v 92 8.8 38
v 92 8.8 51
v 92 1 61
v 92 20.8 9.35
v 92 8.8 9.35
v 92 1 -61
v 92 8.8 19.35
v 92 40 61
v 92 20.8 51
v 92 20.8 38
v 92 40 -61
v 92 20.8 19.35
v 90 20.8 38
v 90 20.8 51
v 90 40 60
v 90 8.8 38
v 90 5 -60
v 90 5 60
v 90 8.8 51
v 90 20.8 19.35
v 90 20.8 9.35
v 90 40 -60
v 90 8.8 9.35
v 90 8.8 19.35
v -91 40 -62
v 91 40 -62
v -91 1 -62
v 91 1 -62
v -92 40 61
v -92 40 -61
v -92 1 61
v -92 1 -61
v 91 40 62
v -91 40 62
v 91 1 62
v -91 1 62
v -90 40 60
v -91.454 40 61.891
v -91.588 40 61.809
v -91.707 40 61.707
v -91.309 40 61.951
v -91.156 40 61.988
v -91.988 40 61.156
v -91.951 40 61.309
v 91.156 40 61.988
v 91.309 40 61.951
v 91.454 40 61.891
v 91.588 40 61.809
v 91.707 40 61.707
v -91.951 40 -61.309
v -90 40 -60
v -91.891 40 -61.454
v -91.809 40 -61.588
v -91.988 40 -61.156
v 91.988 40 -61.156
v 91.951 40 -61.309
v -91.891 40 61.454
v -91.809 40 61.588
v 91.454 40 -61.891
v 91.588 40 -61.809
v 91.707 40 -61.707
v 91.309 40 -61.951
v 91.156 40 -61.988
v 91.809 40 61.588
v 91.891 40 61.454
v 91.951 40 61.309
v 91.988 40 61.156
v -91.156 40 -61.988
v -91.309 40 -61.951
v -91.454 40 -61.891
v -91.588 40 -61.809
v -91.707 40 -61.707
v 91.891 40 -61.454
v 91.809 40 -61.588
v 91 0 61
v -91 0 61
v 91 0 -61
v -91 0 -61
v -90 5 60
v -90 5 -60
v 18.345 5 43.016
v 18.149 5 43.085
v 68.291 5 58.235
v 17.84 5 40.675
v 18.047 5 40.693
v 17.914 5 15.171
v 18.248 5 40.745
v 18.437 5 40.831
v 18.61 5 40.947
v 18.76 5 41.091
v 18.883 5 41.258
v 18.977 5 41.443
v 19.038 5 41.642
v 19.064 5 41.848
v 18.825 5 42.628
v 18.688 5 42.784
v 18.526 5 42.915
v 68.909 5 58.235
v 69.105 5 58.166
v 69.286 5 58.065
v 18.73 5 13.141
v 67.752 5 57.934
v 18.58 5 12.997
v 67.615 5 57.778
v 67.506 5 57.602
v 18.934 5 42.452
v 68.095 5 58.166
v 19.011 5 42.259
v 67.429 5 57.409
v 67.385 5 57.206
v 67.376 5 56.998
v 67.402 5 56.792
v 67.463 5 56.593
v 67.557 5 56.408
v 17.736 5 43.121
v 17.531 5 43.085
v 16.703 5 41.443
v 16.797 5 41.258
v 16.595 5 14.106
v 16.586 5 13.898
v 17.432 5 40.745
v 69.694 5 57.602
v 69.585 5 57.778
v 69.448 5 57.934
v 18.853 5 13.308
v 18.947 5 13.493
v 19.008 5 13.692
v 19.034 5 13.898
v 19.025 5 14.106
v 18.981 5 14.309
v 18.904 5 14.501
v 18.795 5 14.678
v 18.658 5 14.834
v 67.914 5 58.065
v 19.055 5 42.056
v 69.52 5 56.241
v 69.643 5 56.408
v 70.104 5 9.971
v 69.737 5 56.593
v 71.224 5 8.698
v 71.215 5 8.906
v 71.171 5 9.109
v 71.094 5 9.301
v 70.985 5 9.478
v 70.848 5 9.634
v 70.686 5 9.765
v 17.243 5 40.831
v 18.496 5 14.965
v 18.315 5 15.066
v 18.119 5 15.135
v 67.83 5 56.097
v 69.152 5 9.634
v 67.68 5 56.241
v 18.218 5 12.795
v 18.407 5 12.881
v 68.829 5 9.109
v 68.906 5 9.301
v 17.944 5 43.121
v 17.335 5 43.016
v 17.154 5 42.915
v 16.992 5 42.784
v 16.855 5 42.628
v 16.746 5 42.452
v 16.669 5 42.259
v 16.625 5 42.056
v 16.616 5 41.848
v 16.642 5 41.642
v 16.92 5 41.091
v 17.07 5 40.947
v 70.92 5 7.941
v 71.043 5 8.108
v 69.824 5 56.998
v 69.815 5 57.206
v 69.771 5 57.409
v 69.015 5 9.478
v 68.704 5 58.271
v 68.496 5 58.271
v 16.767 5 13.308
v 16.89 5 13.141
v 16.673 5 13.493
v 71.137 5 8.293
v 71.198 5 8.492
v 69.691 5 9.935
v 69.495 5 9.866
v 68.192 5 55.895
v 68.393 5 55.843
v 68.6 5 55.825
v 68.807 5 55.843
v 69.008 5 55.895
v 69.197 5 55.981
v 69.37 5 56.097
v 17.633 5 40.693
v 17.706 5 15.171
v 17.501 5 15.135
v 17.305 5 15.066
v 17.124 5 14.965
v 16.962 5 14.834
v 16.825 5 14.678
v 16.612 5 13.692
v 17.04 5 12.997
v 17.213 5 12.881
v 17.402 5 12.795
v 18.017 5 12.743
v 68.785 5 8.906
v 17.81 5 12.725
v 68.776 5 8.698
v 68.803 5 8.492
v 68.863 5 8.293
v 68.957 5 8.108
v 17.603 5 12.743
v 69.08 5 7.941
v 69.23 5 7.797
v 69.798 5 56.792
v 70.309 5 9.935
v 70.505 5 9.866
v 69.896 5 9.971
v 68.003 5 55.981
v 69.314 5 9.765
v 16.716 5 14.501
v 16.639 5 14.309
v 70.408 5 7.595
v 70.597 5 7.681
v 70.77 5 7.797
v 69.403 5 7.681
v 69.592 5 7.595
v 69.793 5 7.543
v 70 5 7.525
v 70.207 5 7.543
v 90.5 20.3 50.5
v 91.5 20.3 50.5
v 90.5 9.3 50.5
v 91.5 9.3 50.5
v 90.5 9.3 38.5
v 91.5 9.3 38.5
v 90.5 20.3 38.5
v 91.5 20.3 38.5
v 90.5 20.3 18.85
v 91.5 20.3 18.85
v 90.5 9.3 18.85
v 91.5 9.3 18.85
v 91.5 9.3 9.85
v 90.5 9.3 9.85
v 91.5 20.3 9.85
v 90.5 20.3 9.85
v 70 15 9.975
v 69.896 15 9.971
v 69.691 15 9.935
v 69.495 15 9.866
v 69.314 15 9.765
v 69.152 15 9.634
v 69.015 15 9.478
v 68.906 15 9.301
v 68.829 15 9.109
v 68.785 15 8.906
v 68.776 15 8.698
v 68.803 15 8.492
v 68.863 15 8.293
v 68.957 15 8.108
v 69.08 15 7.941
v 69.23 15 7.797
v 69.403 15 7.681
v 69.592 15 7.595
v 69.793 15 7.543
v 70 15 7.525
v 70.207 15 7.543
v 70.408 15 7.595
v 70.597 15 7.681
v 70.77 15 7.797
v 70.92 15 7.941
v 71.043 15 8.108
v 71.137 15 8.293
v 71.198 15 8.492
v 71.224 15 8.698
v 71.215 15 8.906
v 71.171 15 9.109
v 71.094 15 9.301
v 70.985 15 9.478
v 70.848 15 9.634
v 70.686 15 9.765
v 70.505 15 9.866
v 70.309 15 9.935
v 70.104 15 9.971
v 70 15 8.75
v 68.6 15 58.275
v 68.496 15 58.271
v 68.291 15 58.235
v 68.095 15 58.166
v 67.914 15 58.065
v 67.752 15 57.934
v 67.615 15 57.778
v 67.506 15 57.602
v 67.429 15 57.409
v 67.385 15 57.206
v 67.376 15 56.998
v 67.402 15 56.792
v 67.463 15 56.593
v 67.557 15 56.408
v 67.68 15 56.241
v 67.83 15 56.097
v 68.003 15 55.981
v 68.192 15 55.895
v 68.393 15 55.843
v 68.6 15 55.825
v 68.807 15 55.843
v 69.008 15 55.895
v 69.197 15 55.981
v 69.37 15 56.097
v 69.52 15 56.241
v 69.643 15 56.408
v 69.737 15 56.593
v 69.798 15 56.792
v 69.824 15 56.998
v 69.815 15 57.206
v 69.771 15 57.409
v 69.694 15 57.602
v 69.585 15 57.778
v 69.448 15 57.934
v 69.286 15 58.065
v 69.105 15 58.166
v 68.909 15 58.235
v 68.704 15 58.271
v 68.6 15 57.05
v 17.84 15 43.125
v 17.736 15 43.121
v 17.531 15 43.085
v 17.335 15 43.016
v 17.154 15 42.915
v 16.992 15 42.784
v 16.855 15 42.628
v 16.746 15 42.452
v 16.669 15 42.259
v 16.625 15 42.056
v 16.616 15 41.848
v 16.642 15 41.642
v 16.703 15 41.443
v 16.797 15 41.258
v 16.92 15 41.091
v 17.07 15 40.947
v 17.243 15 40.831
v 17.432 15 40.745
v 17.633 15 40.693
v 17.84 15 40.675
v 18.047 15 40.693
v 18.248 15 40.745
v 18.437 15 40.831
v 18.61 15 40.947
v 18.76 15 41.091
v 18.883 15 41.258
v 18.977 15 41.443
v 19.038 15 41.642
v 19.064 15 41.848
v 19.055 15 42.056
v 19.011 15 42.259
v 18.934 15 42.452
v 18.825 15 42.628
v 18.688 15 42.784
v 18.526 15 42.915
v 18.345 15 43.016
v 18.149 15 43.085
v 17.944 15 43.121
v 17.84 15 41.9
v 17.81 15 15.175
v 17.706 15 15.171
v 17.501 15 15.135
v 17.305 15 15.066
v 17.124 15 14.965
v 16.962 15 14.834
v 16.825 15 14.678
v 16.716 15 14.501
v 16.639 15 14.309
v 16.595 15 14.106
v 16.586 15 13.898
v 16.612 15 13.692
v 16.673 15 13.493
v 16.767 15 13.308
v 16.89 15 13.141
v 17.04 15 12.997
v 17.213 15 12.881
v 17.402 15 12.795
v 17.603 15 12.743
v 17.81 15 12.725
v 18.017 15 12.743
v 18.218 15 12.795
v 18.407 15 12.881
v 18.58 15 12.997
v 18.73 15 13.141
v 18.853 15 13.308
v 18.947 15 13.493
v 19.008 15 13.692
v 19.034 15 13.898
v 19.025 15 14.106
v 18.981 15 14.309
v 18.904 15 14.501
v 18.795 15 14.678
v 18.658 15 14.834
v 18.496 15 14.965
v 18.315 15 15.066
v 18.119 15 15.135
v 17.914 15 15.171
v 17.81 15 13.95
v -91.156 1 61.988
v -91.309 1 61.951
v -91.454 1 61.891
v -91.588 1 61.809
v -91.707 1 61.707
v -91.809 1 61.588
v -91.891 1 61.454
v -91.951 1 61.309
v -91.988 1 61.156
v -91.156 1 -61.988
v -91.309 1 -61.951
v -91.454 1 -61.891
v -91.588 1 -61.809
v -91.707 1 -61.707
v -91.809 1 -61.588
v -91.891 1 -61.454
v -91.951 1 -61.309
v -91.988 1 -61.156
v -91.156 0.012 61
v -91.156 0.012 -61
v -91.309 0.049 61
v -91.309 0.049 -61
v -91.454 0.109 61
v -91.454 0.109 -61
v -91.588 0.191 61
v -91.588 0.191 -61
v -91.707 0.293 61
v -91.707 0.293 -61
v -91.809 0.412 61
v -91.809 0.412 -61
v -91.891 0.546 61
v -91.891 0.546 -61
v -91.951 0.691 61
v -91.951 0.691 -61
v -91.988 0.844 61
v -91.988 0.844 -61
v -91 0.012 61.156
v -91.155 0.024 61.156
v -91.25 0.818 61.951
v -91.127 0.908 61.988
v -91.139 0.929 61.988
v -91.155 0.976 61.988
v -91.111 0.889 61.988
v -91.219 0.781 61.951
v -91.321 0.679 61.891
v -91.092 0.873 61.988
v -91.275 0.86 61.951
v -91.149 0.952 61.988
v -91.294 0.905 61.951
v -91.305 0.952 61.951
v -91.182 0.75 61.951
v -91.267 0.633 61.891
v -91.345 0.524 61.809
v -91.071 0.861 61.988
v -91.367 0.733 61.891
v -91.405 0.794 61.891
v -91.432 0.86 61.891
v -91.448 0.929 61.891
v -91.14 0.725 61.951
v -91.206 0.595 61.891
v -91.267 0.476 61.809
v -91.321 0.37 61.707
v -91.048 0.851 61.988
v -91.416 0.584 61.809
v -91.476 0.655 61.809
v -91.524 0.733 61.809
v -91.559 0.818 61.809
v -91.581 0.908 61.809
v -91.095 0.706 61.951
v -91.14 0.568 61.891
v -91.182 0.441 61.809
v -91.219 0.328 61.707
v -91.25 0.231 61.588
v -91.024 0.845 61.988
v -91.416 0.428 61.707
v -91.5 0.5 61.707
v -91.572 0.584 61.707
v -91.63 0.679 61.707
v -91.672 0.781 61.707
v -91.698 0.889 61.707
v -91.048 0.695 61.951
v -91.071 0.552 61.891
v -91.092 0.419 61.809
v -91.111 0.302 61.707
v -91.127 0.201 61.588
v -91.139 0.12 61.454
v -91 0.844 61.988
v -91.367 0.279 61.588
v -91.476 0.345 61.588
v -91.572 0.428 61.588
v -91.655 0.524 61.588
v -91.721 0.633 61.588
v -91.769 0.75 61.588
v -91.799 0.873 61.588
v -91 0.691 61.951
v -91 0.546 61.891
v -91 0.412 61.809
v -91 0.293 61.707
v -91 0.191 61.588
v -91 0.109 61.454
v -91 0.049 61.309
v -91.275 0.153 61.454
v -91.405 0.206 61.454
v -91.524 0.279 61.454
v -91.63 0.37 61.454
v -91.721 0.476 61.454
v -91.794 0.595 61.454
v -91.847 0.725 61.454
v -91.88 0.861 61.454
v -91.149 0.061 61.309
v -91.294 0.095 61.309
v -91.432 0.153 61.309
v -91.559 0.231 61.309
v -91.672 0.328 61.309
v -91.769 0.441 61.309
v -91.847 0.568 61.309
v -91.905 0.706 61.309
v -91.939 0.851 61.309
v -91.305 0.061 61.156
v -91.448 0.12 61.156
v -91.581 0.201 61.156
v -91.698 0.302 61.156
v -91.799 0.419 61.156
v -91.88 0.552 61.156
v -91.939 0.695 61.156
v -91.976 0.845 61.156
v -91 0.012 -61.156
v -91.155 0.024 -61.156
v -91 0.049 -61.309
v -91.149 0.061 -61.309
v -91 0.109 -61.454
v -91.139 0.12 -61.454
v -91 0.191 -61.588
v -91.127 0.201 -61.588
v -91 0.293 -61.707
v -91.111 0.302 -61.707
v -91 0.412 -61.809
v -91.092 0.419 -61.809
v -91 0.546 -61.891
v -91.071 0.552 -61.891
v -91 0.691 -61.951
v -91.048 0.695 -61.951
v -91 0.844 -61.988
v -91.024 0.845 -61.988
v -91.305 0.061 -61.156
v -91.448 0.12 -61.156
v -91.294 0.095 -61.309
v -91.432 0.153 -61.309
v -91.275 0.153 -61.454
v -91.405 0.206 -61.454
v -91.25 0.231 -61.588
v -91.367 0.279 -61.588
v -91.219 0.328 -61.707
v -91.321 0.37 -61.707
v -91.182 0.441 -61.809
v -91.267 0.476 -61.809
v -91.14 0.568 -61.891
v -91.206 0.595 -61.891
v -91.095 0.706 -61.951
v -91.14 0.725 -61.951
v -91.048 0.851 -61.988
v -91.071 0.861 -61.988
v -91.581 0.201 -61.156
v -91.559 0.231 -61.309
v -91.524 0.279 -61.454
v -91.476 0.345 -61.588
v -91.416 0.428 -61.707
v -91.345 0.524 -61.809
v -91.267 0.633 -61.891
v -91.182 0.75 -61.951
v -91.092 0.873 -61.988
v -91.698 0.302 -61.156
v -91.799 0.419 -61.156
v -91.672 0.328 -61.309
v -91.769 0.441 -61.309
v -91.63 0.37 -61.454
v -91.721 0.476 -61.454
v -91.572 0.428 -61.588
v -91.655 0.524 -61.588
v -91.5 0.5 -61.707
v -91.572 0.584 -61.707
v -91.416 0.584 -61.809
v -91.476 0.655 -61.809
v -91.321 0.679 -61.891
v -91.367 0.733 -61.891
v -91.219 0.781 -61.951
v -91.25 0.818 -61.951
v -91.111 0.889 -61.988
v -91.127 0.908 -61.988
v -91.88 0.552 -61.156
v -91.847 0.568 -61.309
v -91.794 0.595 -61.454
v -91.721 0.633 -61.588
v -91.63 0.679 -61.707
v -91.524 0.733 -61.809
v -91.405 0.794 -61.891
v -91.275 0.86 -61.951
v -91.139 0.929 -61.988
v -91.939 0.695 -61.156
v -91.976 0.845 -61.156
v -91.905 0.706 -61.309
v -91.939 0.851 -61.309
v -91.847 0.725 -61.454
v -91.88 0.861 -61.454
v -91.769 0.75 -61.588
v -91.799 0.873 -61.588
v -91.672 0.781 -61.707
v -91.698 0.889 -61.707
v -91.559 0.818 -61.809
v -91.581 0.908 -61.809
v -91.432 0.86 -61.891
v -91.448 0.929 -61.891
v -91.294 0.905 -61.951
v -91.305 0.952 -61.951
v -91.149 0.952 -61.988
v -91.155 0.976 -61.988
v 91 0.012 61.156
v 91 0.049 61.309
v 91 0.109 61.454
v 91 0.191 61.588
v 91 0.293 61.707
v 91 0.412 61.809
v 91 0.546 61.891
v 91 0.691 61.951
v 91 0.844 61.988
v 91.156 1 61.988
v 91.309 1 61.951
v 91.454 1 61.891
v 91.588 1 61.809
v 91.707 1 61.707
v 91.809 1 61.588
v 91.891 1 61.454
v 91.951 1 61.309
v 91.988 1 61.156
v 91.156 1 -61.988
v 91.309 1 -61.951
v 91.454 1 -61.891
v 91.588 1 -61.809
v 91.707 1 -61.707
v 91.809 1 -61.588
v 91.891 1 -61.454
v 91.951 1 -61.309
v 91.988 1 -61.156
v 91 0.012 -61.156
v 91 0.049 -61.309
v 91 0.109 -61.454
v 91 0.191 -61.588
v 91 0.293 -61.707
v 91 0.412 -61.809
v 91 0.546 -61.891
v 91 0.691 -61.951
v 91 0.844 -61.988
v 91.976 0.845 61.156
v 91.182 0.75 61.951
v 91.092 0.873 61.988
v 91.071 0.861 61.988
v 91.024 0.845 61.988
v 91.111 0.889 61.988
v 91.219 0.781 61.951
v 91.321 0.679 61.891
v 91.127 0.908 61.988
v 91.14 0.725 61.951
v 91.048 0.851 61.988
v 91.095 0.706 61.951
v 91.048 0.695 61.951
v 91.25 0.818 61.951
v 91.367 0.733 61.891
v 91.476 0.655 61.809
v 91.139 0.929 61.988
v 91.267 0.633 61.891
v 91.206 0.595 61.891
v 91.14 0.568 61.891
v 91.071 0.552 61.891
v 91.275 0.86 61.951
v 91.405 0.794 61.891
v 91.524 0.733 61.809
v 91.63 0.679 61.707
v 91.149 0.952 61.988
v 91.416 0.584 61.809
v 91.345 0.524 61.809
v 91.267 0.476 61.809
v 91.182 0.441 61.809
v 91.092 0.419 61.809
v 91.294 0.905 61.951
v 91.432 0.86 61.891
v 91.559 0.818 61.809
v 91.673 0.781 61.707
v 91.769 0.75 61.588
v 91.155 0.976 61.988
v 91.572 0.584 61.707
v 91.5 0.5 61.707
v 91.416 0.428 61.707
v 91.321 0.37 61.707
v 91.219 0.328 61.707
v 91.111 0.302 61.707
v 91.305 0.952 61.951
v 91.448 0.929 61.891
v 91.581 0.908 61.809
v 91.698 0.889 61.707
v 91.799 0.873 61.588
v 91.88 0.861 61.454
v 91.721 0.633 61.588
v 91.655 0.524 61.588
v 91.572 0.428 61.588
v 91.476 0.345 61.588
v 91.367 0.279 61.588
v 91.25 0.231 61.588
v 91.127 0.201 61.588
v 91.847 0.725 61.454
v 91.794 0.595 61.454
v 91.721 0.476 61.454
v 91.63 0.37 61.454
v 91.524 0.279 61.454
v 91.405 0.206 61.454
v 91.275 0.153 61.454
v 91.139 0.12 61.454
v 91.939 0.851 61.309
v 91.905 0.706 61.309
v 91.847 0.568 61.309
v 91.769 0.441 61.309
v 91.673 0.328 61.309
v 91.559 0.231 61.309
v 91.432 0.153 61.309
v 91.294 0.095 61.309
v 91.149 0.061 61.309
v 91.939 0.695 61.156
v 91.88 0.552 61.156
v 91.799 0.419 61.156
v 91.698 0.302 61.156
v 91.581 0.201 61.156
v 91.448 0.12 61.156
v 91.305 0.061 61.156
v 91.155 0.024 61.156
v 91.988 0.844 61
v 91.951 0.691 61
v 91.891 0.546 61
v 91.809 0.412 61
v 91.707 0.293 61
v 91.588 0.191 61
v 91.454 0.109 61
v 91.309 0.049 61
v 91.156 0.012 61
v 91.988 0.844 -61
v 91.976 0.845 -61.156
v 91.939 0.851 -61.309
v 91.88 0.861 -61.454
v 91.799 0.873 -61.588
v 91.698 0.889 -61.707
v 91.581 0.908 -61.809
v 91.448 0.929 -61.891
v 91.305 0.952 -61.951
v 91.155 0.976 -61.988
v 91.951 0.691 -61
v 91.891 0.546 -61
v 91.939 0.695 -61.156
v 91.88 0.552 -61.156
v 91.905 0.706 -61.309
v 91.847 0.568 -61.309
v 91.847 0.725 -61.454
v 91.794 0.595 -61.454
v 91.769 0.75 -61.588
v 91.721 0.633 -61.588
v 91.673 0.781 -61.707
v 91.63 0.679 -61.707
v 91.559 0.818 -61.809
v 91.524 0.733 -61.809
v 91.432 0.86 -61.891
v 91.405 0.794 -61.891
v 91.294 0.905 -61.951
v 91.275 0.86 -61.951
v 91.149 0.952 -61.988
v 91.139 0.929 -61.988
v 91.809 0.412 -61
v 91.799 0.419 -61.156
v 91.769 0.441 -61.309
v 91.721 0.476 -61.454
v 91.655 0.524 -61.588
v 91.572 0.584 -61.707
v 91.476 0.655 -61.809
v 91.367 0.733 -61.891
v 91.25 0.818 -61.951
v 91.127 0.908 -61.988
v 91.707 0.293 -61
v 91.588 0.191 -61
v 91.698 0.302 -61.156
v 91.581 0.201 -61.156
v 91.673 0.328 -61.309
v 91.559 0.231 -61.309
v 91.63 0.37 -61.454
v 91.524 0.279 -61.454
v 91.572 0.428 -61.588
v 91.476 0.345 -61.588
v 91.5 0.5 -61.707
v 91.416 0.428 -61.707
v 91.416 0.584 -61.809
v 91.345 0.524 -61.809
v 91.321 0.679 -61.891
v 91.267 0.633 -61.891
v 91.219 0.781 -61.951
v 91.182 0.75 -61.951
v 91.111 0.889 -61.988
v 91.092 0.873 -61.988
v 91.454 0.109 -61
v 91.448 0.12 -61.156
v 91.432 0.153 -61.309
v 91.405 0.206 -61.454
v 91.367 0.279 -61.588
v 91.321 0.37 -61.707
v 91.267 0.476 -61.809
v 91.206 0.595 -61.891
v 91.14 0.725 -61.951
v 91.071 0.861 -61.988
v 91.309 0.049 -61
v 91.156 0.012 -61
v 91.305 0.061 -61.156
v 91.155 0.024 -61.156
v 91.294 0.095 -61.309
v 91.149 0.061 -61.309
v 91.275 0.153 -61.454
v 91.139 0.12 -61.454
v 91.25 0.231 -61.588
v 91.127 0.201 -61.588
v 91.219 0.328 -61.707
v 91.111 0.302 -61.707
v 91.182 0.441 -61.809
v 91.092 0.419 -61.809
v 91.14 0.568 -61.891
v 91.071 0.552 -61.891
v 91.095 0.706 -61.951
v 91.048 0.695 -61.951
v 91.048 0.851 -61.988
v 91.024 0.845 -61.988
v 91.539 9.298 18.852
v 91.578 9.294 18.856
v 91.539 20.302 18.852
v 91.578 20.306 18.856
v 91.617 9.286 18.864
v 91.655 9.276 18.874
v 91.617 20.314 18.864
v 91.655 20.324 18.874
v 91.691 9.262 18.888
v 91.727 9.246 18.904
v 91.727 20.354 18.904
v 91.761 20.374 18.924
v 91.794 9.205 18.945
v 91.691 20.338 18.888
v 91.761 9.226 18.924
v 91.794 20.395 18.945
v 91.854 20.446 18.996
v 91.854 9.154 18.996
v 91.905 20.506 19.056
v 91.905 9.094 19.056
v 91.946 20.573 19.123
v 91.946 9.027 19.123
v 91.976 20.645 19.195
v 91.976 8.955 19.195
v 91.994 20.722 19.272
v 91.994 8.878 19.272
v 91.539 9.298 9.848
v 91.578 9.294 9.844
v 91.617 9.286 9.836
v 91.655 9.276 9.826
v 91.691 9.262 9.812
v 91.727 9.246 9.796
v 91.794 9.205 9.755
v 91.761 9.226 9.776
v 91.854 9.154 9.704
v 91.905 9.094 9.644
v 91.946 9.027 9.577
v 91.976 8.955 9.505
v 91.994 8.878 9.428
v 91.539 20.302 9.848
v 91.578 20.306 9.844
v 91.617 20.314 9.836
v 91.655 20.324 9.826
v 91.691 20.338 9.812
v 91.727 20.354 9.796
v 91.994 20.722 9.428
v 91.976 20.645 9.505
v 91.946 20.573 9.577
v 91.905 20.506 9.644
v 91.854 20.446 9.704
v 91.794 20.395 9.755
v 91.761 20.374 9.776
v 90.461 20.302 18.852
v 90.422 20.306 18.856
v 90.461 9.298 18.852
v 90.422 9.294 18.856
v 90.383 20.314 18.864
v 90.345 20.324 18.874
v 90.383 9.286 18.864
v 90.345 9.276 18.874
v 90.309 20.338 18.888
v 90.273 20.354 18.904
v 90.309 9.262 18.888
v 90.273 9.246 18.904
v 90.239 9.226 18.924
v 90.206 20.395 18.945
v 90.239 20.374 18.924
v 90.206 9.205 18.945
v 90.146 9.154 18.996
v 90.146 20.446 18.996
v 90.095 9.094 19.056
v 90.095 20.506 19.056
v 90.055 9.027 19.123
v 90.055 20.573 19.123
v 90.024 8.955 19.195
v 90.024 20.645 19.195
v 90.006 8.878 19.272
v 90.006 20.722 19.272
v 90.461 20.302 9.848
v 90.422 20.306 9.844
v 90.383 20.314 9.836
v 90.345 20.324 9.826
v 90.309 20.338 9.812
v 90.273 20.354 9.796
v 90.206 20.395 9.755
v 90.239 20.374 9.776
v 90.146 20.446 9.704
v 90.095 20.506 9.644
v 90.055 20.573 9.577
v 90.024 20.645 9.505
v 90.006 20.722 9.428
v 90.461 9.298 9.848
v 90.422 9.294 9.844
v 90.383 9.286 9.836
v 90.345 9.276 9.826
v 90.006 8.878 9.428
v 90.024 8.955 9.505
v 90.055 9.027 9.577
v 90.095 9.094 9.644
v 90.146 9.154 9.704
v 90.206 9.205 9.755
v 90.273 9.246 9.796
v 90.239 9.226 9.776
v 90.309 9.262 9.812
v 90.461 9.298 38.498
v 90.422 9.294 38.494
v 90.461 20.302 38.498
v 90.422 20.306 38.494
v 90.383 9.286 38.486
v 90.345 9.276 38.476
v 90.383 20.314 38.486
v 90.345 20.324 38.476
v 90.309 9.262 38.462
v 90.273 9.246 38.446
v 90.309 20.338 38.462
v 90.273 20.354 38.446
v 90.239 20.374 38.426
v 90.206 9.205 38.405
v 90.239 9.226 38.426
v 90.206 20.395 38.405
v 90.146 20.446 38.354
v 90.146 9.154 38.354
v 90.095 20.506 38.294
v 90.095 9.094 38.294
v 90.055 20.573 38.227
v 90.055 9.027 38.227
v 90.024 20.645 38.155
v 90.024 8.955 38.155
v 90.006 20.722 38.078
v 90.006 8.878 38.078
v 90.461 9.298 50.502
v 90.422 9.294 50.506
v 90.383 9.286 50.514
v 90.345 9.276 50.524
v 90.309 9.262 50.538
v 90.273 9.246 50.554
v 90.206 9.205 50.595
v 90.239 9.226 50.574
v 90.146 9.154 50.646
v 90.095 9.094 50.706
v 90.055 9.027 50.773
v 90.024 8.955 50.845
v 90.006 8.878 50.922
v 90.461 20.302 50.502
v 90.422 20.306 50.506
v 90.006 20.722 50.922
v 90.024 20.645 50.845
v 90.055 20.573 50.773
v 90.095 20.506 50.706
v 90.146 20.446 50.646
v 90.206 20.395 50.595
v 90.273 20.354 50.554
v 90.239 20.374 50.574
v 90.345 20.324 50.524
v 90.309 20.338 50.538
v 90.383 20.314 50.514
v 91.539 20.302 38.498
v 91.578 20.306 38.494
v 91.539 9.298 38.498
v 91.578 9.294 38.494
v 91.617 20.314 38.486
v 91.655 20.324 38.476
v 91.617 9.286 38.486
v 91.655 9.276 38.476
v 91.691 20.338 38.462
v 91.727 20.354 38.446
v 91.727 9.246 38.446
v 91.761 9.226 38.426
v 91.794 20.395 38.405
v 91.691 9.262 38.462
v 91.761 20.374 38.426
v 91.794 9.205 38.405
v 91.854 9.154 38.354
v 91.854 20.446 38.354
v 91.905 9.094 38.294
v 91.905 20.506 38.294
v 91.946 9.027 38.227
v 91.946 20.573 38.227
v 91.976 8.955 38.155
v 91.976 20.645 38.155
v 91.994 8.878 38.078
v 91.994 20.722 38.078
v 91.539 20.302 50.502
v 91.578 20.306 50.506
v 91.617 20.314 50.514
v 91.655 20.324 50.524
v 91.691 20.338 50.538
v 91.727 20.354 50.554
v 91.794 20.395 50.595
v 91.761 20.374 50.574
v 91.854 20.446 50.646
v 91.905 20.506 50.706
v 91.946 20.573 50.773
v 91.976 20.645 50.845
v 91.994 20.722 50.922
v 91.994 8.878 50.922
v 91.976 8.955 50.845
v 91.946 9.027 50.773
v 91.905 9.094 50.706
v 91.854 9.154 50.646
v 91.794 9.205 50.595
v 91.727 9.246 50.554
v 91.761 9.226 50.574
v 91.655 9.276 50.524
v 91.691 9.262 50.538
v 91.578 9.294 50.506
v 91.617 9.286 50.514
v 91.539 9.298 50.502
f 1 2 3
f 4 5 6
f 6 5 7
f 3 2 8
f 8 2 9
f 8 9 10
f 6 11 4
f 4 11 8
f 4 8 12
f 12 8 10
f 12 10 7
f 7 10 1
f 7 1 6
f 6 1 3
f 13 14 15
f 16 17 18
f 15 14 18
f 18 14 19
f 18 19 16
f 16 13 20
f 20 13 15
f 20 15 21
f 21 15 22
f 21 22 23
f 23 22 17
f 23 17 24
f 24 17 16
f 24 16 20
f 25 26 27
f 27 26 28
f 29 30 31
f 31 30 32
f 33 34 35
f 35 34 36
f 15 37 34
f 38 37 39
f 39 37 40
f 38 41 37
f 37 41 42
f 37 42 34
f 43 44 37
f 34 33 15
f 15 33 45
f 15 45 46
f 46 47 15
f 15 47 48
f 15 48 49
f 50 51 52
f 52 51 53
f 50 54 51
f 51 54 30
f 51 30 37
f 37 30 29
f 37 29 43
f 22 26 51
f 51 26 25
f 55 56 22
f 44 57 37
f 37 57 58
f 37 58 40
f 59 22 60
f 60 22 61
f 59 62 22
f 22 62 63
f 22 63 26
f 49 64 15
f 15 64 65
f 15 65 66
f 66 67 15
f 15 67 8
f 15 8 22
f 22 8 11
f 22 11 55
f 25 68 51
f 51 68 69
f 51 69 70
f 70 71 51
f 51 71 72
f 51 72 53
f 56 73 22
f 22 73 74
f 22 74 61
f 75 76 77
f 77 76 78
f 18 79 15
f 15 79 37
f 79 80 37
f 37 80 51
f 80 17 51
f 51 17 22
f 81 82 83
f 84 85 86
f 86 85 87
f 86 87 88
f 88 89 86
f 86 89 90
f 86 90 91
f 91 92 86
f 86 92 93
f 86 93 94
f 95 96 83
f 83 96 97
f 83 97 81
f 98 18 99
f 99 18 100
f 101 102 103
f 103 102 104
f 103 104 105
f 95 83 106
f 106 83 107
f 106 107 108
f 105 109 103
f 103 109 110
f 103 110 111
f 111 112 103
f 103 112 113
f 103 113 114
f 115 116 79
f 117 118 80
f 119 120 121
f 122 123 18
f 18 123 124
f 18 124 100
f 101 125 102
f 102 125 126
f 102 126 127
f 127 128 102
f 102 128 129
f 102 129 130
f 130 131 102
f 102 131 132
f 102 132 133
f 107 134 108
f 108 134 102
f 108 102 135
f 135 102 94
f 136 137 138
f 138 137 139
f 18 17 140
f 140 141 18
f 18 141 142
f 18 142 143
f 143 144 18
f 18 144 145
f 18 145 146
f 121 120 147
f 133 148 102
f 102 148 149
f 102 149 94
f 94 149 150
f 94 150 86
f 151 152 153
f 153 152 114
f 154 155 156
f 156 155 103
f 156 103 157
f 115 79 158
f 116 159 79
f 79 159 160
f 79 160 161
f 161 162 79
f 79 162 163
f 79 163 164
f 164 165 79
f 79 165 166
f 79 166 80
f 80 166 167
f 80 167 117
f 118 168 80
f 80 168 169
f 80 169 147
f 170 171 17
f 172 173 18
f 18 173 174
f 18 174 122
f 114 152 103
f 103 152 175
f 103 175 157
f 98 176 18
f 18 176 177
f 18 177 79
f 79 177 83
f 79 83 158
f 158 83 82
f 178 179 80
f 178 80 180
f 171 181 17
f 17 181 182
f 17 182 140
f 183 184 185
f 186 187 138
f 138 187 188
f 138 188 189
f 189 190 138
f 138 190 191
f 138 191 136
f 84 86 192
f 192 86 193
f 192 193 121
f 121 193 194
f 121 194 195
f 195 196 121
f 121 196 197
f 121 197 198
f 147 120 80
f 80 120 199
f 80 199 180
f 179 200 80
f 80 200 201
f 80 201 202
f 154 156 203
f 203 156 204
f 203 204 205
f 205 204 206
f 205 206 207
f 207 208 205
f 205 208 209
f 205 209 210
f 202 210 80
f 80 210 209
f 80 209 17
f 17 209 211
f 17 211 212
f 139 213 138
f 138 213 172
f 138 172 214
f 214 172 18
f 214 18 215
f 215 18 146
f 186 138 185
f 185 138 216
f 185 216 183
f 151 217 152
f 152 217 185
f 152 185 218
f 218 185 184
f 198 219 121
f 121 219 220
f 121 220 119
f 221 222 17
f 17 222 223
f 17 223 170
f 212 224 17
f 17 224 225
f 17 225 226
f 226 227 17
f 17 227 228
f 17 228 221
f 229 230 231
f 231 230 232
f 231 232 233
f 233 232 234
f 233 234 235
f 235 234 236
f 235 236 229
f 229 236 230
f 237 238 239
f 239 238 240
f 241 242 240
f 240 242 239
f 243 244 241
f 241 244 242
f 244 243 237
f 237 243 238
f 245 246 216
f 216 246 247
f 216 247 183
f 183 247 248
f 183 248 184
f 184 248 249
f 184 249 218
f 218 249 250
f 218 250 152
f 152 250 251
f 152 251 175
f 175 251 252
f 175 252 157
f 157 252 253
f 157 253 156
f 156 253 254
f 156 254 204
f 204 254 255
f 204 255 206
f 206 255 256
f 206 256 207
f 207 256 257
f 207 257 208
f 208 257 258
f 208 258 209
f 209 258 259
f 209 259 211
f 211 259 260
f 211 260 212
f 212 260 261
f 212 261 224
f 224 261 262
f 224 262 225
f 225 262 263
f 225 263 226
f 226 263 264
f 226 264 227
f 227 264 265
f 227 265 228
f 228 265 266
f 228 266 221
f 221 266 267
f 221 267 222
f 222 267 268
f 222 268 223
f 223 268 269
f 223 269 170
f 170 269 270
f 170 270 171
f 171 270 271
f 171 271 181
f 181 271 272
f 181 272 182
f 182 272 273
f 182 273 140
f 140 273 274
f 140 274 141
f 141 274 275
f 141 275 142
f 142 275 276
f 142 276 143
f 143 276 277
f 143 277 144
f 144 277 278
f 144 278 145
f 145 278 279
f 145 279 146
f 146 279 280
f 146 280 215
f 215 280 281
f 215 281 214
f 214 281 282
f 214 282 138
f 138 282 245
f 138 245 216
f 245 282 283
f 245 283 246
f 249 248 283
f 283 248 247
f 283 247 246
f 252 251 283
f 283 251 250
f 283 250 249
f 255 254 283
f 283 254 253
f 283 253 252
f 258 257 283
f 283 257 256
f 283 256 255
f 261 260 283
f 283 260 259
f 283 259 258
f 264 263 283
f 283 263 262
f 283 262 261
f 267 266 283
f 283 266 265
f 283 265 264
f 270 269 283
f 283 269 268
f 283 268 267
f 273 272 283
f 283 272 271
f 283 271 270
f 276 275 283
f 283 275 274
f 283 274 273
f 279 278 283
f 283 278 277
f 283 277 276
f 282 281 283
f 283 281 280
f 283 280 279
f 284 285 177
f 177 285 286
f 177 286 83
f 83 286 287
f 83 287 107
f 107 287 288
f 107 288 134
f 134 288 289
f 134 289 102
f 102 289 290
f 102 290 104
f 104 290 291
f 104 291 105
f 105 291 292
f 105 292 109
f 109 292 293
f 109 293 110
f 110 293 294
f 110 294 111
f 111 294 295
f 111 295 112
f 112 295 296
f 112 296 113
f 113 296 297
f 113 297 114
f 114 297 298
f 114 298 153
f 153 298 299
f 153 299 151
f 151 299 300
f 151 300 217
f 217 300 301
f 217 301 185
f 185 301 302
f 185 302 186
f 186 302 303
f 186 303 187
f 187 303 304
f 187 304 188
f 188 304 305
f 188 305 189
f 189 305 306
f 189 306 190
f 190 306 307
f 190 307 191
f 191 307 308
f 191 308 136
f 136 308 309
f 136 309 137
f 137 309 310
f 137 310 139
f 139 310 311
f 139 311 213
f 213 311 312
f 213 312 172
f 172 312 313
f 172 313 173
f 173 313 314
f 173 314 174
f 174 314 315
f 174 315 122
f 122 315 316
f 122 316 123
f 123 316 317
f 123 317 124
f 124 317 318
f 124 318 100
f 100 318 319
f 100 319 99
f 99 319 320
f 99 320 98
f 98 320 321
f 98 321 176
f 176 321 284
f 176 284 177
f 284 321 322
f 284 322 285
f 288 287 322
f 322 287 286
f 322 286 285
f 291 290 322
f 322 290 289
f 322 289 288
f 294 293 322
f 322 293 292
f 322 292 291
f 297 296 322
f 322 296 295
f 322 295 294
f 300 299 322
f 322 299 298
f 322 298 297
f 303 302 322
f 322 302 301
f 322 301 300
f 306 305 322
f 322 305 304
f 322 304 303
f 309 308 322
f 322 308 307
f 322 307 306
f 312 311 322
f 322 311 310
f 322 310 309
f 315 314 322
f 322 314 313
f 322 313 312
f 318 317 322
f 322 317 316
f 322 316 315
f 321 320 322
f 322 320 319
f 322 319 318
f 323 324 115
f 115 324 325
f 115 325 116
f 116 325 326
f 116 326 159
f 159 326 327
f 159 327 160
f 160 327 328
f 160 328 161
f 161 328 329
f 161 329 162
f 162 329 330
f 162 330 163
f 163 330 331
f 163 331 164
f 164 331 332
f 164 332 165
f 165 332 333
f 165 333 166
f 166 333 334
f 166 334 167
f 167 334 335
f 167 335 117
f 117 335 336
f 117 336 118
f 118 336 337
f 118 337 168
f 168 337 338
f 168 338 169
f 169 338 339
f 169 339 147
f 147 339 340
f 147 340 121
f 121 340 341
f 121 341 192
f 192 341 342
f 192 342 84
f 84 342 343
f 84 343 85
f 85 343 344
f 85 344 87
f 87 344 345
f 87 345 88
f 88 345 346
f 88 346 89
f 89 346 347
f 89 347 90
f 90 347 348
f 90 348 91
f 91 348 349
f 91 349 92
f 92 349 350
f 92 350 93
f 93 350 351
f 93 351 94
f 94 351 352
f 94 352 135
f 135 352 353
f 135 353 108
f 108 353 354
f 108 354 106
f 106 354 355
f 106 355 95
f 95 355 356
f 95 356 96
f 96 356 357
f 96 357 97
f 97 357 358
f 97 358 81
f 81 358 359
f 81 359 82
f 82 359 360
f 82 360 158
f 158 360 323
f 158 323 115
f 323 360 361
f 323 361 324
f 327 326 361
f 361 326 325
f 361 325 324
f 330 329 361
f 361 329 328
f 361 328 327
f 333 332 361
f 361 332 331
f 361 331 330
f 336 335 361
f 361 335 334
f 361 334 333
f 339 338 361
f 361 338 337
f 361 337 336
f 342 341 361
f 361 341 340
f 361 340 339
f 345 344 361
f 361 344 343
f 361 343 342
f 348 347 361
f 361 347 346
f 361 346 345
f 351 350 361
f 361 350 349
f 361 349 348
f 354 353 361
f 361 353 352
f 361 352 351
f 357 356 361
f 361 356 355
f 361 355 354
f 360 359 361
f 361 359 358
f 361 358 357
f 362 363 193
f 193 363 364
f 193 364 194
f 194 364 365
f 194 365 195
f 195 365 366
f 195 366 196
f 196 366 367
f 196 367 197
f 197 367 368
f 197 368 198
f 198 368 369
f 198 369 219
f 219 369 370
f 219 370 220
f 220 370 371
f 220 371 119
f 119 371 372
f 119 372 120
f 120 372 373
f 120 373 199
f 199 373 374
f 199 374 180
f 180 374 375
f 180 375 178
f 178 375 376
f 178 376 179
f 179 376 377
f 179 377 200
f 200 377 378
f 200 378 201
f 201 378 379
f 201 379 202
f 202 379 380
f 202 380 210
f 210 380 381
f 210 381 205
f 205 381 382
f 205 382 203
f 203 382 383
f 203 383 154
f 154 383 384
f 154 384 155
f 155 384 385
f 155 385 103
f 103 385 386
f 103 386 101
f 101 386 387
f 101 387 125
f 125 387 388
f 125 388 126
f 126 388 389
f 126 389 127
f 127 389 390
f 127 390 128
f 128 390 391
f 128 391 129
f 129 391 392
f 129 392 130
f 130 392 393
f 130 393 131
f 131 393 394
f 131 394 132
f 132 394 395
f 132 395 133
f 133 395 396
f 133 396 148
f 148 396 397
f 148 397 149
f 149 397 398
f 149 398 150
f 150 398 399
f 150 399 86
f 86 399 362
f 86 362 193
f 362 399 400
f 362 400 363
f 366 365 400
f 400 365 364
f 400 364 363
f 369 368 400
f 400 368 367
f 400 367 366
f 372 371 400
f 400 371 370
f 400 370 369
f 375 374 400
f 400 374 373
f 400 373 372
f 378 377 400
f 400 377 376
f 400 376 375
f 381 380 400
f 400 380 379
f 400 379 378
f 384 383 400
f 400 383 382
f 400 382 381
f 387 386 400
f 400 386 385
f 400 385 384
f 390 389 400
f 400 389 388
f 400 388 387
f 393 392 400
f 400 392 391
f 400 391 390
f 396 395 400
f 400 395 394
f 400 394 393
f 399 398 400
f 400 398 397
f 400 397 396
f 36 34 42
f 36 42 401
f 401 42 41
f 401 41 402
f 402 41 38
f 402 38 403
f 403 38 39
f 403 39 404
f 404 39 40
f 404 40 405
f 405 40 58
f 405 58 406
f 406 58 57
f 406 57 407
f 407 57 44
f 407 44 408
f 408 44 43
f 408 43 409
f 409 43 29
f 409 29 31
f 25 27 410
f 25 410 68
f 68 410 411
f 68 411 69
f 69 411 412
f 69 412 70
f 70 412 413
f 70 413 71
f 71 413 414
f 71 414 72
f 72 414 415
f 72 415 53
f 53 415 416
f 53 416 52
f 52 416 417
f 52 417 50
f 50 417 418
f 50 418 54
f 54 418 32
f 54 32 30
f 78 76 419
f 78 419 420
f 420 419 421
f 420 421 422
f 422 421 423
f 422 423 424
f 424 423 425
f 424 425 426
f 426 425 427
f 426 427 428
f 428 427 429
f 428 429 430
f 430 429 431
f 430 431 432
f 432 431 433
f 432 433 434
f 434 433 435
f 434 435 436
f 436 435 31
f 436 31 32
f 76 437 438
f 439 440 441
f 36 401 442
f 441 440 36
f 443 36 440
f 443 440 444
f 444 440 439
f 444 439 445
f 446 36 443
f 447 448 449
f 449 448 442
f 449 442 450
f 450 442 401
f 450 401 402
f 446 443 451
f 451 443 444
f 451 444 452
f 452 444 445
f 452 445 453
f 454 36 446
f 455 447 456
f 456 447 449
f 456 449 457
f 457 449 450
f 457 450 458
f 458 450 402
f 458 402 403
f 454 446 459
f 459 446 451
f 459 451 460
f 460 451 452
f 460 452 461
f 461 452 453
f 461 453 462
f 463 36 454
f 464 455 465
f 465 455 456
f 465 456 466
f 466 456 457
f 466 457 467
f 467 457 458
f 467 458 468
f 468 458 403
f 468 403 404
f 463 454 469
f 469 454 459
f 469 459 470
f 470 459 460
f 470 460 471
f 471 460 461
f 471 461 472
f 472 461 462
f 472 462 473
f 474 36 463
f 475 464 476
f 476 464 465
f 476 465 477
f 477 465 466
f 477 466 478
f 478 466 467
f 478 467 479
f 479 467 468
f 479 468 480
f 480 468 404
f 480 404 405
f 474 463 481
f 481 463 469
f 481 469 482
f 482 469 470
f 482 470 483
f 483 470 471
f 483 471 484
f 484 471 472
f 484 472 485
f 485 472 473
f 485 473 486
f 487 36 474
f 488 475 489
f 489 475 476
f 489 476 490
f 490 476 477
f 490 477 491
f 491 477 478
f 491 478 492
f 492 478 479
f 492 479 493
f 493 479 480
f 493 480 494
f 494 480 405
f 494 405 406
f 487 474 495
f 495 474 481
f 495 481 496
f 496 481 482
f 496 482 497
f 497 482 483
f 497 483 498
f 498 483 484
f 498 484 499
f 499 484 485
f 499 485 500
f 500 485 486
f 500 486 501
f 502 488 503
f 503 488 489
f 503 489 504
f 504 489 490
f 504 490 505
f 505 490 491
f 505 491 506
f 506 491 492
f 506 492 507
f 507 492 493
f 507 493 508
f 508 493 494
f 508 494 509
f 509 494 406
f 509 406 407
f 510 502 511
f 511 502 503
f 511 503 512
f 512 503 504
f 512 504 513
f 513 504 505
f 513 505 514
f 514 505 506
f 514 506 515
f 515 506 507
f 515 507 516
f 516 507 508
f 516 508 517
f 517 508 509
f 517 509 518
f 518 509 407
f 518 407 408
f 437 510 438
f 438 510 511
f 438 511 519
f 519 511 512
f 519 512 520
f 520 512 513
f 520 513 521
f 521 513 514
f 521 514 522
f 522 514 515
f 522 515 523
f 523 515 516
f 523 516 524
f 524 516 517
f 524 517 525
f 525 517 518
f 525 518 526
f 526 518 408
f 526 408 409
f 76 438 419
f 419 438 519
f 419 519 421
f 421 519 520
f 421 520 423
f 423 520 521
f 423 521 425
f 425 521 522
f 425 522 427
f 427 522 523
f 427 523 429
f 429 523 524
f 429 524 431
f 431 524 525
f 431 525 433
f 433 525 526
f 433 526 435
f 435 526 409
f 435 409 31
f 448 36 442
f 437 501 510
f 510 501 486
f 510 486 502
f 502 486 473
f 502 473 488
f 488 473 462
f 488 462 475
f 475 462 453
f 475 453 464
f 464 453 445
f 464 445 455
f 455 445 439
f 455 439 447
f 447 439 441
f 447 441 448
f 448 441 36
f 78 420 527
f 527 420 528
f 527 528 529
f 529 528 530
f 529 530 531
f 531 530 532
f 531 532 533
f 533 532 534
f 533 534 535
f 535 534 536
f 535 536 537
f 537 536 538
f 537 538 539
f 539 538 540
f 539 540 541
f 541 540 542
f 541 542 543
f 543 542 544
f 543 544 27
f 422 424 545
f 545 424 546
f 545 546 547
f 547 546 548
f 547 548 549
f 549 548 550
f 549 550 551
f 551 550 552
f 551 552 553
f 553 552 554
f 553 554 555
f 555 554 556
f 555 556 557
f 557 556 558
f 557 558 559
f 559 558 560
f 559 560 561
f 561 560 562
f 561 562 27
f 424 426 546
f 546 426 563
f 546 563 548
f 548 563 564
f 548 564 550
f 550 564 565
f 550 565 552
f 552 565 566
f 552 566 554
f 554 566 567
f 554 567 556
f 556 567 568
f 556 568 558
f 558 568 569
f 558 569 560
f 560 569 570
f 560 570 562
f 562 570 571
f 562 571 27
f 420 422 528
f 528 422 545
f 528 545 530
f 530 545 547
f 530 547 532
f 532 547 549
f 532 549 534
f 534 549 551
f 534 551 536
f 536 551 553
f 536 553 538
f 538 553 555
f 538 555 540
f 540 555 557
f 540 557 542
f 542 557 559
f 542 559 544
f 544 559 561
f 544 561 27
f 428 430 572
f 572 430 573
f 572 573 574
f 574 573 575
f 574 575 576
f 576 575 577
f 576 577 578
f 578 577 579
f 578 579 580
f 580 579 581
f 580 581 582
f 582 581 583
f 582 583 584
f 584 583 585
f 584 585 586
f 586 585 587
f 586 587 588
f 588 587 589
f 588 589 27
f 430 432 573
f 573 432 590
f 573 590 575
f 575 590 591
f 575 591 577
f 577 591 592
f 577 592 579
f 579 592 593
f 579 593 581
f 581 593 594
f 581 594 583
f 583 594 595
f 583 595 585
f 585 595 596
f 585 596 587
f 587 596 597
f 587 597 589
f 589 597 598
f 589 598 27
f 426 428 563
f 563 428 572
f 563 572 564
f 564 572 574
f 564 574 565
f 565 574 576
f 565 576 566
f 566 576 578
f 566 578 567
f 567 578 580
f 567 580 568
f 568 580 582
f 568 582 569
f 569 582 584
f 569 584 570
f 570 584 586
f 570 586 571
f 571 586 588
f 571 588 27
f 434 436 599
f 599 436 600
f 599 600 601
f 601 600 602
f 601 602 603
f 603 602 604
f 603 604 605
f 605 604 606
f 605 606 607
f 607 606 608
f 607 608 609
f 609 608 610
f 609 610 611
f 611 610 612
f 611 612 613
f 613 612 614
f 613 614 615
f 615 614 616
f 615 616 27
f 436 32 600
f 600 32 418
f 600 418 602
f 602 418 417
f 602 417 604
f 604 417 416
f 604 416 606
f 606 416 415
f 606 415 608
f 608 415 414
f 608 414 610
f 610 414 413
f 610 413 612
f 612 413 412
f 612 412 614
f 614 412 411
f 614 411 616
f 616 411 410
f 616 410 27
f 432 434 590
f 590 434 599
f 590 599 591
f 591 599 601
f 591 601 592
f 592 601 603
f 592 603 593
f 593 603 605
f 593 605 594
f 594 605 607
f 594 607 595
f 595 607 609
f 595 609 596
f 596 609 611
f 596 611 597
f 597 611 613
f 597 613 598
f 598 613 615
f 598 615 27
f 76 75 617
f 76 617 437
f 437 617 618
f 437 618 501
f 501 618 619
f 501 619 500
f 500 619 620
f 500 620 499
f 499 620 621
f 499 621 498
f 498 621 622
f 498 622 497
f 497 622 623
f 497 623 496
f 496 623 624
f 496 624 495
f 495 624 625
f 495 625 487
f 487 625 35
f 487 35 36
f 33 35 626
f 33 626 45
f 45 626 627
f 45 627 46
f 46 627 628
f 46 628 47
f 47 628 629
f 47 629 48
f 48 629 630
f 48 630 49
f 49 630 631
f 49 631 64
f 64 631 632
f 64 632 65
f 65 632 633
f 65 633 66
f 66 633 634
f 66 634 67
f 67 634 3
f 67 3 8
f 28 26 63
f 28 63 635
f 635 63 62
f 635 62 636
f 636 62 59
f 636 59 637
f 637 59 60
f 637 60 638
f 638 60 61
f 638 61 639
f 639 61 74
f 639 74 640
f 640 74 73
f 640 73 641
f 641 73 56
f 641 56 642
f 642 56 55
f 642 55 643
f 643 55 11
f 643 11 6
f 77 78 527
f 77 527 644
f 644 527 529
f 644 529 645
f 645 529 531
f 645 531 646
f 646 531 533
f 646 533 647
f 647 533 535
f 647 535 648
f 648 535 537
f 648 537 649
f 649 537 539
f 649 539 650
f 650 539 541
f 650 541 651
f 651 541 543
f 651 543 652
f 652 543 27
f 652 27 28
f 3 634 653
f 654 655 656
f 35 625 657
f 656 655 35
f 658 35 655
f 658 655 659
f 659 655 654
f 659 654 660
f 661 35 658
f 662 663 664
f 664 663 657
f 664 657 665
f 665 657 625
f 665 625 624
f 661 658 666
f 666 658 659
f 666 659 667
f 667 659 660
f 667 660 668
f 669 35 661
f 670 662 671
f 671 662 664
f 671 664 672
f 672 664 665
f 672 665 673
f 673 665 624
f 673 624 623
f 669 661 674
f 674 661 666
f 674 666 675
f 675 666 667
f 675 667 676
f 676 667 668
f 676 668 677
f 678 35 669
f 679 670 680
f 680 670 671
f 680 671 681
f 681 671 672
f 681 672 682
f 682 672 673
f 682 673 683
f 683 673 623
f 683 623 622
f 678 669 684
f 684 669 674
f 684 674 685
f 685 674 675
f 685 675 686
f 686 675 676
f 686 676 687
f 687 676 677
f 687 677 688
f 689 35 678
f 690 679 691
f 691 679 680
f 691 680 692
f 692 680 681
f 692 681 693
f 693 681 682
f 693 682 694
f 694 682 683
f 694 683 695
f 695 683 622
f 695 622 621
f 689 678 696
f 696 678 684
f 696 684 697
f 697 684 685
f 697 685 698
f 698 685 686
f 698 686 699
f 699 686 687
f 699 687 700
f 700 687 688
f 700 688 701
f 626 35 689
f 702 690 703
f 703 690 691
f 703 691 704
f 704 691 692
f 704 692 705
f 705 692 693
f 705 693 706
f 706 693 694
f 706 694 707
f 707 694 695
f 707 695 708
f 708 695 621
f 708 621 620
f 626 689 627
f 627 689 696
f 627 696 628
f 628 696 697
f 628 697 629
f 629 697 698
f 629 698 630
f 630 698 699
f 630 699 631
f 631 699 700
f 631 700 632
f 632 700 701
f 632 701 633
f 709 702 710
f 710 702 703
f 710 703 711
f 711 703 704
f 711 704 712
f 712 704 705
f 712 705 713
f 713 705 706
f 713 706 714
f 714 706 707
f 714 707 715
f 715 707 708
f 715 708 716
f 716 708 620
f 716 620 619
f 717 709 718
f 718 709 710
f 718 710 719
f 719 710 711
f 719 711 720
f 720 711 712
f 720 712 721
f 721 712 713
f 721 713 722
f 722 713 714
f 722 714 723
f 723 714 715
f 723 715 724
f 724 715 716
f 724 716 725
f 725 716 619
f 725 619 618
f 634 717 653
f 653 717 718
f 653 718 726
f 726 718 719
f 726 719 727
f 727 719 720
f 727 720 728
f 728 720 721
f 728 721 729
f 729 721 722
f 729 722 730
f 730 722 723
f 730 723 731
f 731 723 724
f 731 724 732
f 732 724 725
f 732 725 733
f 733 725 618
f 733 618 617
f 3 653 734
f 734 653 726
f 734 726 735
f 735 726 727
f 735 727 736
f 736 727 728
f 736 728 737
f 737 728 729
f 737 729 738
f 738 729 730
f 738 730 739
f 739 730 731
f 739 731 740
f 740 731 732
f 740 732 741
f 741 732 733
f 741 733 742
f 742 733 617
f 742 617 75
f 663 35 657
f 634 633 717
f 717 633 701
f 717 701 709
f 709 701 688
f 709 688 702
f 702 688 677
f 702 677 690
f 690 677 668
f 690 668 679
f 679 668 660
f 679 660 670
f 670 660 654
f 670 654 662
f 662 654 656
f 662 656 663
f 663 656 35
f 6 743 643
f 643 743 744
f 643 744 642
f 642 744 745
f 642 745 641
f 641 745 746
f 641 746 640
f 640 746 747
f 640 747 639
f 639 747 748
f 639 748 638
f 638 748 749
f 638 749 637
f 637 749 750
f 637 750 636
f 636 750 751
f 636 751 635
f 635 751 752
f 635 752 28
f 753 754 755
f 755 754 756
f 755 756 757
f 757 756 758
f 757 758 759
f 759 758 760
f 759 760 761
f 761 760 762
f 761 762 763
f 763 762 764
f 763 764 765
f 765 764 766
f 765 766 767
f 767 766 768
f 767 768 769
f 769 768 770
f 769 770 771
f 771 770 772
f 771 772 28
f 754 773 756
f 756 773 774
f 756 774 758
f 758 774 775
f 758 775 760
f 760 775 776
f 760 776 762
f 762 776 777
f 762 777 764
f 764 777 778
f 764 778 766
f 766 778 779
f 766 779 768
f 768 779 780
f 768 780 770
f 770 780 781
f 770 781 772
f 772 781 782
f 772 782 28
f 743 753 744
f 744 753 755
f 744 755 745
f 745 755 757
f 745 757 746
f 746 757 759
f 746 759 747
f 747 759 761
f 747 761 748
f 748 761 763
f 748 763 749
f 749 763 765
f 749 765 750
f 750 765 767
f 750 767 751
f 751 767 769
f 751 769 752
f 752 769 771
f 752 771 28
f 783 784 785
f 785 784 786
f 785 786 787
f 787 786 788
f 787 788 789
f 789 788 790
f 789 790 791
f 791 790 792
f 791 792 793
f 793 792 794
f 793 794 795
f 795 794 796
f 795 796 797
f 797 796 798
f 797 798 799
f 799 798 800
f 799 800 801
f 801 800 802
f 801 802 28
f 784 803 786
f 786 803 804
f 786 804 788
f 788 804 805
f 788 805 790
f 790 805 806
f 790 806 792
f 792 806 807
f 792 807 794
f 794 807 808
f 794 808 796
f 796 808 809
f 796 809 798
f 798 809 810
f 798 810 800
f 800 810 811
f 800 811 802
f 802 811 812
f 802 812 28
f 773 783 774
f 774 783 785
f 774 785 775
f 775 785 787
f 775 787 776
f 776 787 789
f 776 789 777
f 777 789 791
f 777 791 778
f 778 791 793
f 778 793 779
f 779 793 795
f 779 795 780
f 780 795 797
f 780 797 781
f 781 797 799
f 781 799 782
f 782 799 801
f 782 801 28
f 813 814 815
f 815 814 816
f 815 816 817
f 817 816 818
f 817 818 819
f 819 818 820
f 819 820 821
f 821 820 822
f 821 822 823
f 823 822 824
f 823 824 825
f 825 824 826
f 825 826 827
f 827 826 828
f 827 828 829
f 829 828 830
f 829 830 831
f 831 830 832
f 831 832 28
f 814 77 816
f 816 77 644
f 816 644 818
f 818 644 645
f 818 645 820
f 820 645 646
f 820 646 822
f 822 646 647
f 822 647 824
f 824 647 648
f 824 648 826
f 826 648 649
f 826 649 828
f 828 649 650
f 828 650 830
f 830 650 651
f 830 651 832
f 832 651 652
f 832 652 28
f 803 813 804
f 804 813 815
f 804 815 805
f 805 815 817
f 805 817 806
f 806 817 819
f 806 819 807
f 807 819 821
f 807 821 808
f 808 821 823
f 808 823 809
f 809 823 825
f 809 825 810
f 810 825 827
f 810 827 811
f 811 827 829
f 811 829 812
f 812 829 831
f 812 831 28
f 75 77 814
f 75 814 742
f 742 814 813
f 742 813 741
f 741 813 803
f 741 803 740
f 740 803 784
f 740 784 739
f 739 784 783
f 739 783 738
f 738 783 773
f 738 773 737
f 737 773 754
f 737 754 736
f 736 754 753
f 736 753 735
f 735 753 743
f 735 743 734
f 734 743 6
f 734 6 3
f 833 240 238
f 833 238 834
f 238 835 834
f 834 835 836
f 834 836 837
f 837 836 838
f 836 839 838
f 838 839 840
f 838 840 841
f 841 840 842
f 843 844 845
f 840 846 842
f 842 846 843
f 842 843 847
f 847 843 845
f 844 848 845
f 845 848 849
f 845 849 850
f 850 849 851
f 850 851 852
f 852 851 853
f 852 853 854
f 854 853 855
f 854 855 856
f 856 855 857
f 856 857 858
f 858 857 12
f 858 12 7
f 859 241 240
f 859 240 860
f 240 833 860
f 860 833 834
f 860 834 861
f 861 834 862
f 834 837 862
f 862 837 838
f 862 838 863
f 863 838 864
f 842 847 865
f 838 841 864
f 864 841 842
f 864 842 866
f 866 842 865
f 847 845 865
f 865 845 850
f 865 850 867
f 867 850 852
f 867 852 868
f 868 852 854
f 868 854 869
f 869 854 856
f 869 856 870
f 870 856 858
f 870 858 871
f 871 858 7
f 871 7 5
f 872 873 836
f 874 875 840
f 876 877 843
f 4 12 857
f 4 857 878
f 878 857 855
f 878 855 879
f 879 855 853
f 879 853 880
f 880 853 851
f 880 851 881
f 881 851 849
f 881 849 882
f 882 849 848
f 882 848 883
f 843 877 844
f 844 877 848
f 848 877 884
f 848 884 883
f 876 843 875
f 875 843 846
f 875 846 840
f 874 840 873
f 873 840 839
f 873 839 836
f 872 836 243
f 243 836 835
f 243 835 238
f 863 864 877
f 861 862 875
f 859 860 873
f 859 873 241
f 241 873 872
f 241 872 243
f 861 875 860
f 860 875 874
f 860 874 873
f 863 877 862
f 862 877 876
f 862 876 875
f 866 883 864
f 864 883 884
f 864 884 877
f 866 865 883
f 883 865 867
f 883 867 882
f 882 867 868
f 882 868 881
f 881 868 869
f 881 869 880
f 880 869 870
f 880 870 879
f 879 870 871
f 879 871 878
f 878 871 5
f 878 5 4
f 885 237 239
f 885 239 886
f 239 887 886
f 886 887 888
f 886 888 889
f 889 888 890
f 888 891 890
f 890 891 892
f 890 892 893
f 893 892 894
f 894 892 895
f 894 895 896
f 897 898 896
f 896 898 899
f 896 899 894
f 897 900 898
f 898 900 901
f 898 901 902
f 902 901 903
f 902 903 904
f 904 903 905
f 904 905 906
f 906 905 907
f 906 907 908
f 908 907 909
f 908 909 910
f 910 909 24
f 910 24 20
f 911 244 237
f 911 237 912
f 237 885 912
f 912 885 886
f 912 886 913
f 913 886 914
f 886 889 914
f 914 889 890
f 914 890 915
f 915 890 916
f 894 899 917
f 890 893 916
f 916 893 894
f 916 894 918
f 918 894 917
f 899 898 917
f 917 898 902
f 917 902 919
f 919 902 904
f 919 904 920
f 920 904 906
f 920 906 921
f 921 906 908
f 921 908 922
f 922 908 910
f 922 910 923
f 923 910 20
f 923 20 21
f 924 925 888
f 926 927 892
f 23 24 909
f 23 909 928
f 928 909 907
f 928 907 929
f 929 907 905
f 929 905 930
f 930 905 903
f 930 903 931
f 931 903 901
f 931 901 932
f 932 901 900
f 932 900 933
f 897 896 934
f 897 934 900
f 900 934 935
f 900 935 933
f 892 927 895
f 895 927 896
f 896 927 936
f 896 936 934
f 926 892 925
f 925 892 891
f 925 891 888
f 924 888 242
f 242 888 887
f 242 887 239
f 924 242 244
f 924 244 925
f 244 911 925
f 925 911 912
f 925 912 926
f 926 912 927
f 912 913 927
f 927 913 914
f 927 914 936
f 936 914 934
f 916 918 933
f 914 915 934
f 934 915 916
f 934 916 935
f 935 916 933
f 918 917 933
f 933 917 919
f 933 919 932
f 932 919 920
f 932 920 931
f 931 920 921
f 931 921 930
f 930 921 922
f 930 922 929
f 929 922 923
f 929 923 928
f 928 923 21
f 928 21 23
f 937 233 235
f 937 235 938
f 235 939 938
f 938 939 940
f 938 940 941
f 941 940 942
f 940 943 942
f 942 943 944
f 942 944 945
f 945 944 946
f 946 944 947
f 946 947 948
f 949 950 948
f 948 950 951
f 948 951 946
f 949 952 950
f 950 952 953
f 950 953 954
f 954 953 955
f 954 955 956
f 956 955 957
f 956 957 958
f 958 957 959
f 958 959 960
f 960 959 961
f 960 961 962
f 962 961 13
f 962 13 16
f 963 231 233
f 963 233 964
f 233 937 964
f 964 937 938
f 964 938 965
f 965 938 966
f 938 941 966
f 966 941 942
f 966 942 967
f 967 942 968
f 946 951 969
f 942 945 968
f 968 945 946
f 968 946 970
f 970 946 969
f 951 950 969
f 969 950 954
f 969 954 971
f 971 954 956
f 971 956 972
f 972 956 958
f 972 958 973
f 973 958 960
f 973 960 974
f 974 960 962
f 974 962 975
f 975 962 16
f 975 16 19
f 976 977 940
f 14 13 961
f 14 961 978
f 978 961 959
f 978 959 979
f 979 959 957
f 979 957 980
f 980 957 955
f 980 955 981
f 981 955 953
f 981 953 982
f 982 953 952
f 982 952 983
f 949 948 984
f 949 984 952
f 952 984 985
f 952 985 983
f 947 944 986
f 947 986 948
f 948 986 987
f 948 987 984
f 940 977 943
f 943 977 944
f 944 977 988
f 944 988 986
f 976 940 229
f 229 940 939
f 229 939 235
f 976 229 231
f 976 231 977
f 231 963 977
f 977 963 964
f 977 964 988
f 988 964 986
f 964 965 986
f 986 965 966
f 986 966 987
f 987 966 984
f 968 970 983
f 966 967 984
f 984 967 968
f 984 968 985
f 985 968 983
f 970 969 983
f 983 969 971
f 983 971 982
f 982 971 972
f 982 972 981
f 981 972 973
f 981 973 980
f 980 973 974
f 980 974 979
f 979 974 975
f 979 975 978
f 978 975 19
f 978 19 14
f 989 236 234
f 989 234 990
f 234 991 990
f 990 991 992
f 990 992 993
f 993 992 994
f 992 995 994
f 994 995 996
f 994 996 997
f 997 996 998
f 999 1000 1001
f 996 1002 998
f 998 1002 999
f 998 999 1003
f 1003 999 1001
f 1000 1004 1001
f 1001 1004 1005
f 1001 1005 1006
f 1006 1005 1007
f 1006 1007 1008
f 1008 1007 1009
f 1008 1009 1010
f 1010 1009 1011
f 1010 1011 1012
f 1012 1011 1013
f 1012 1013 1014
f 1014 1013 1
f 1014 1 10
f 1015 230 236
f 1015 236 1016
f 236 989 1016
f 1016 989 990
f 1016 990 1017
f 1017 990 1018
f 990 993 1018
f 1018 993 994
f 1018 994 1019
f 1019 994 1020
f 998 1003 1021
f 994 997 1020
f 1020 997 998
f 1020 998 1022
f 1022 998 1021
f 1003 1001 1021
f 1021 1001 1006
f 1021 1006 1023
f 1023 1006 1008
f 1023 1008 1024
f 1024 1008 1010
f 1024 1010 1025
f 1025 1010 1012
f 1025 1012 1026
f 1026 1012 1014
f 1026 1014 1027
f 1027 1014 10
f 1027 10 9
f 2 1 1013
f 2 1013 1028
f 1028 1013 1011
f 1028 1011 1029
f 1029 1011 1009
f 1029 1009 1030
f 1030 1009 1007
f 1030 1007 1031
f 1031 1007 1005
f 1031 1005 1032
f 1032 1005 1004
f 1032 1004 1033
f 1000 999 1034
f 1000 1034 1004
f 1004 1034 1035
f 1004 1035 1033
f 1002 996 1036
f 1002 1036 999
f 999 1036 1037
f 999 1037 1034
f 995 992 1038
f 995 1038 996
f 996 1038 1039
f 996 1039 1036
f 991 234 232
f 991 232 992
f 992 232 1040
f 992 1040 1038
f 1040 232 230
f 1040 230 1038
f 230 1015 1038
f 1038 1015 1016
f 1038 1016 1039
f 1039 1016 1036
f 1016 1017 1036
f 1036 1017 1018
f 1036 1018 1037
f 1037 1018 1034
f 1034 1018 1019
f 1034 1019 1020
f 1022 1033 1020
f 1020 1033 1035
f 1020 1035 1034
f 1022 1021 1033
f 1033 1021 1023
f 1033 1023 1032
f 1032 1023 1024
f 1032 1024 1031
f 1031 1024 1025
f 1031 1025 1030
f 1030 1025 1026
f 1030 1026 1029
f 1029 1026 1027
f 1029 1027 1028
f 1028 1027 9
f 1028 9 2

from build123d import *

# Parameters (mm, degrees)
IZIM2_W                     = 184
IZIM2_H                     = 124
Y_KSEKLIK_EKSTR_ZYON1_DEPTH = 40
IZIM3_W                     = 180
IZIM3_H                     = 120
KES_EKSTR_ZYON1_DEPTH       = 35
KES_EKSTR_ZYON3_DEPTH       = 100
KES_EKSTR_ZYON3_DEPTH_BACK  = 57
IZIM9_W                     = 12
IZIM9_H                     = 11
IZIM9_W_2                   = 9
IZIM10_R                    = 1.225
Y_KSEKLIK_EKSTR_ZYON2_DEPTH = 10
RADYUS1_R                   = 1
RADYUS2_R                   = 0.5


with BuildPart() as part:
    # Çizim2 → Yükseklik-Ekstrüzyon1 (new body)
    with BuildSketch(Plane(origin=(0, 0, 0), x_dir=(1, 0, 0), z_dir=(0, 1, 0))):
        Rectangle(IZIM2_W, IZIM2_H)
    extrude(amount=Y_KSEKLIK_EKSTR_ZYON1_DEPTH)

    # Çizim3 → Kes-Ekstrüzyon1 (cut)
    with BuildSketch(Plane(origin=(0, 40, 0), x_dir=(1, 0, 0), z_dir=(0, 1, 0))):
        Rectangle(IZIM3_W, IZIM3_H)
    extrude(amount=-KES_EKSTR_ZYON1_DEPTH, mode=Mode.SUBTRACT)

    # Çizim9 → Kes-Ekstrüzyon3 (cut, two sides: drawn at the far end of the back side and taken through both)
    with BuildSketch(Plane(origin=(92, 0, 0), x_dir=(0, 0, -1), z_dir=(1, 0, 0)).offset(-KES_EKSTR_ZYON3_DEPTH_BACK)):
        with Locations((-44.5, 14.8)):
            Rectangle(IZIM9_W, IZIM9_H)
        with Locations((-14.35, 14.8)):
            Rectangle(IZIM9_W_2, IZIM9_H)
    extrude(amount=KES_EKSTR_ZYON3_DEPTH + KES_EKSTR_ZYON3_DEPTH_BACK, mode=Mode.SUBTRACT)

    # Çizim10 → Yükseklik-Ekstrüzyon2 (add)
    with BuildSketch(Plane(origin=(0, 5, 0), x_dir=(1, 0, 0), z_dir=(0, 1, 0))):
        with Locations(Location((70, -8.75, 0), (0, 0, 90))):
            Circle(IZIM10_R)
        with Locations(Location((68.6, -57.05, 0), (0, 0, 90))):
            Circle(IZIM10_R)
        with Locations(Location((17.84, -41.9, 0), (0, 0, 90))):
            Circle(IZIM10_R)
        with Locations(Location((17.81, -13.95, 0), (0, 0, 90))):
            Circle(IZIM10_R)
    extrude(amount=Y_KSEKLIK_EKSTR_ZYON2_DEPTH)

    # Radyus1
    radyus1_edges = [part.edges().sort_by_distance(p)[0] for p in [
        (-92, 0, 0),
        (0, 0, 62),
        (92, 0, 0),
        (0, 0, -62),
        (-92, 20, -62),
        (-92, 20, 62),
        (92, 20, 62),
        (92, 20, -62),
    ]]
    fillet(radyus1_edges, radius=RADYUS1_R)

    # Radyus2
    radyus2_edges = [part.edges().sort_by_distance(p)[0] for p in [
        (90, 20.3, 44.5),
        (90, 14.8, 38.5),
        (90, 9.3, 44.5),
        (90, 14.8, 50.5),
        (90, 20.3, 14.35),
        (90, 14.8, 9.85),
        (90, 9.3, 14.35),
        (90, 14.8, 18.85),
        (92, 14.8, 18.85),
        (92, 9.3, 14.35),
        (92, 14.8, 9.85),
        (92, 20.3, 14.35),
        (92, 14.8, 50.5),
        (92, 9.3, 44.5),
        (92, 14.8, 38.5),
        (92, 20.3, 44.5),
    ]]
    fillet(radyus2_edges, radius=RADYUS2_R)


solid = part.part
